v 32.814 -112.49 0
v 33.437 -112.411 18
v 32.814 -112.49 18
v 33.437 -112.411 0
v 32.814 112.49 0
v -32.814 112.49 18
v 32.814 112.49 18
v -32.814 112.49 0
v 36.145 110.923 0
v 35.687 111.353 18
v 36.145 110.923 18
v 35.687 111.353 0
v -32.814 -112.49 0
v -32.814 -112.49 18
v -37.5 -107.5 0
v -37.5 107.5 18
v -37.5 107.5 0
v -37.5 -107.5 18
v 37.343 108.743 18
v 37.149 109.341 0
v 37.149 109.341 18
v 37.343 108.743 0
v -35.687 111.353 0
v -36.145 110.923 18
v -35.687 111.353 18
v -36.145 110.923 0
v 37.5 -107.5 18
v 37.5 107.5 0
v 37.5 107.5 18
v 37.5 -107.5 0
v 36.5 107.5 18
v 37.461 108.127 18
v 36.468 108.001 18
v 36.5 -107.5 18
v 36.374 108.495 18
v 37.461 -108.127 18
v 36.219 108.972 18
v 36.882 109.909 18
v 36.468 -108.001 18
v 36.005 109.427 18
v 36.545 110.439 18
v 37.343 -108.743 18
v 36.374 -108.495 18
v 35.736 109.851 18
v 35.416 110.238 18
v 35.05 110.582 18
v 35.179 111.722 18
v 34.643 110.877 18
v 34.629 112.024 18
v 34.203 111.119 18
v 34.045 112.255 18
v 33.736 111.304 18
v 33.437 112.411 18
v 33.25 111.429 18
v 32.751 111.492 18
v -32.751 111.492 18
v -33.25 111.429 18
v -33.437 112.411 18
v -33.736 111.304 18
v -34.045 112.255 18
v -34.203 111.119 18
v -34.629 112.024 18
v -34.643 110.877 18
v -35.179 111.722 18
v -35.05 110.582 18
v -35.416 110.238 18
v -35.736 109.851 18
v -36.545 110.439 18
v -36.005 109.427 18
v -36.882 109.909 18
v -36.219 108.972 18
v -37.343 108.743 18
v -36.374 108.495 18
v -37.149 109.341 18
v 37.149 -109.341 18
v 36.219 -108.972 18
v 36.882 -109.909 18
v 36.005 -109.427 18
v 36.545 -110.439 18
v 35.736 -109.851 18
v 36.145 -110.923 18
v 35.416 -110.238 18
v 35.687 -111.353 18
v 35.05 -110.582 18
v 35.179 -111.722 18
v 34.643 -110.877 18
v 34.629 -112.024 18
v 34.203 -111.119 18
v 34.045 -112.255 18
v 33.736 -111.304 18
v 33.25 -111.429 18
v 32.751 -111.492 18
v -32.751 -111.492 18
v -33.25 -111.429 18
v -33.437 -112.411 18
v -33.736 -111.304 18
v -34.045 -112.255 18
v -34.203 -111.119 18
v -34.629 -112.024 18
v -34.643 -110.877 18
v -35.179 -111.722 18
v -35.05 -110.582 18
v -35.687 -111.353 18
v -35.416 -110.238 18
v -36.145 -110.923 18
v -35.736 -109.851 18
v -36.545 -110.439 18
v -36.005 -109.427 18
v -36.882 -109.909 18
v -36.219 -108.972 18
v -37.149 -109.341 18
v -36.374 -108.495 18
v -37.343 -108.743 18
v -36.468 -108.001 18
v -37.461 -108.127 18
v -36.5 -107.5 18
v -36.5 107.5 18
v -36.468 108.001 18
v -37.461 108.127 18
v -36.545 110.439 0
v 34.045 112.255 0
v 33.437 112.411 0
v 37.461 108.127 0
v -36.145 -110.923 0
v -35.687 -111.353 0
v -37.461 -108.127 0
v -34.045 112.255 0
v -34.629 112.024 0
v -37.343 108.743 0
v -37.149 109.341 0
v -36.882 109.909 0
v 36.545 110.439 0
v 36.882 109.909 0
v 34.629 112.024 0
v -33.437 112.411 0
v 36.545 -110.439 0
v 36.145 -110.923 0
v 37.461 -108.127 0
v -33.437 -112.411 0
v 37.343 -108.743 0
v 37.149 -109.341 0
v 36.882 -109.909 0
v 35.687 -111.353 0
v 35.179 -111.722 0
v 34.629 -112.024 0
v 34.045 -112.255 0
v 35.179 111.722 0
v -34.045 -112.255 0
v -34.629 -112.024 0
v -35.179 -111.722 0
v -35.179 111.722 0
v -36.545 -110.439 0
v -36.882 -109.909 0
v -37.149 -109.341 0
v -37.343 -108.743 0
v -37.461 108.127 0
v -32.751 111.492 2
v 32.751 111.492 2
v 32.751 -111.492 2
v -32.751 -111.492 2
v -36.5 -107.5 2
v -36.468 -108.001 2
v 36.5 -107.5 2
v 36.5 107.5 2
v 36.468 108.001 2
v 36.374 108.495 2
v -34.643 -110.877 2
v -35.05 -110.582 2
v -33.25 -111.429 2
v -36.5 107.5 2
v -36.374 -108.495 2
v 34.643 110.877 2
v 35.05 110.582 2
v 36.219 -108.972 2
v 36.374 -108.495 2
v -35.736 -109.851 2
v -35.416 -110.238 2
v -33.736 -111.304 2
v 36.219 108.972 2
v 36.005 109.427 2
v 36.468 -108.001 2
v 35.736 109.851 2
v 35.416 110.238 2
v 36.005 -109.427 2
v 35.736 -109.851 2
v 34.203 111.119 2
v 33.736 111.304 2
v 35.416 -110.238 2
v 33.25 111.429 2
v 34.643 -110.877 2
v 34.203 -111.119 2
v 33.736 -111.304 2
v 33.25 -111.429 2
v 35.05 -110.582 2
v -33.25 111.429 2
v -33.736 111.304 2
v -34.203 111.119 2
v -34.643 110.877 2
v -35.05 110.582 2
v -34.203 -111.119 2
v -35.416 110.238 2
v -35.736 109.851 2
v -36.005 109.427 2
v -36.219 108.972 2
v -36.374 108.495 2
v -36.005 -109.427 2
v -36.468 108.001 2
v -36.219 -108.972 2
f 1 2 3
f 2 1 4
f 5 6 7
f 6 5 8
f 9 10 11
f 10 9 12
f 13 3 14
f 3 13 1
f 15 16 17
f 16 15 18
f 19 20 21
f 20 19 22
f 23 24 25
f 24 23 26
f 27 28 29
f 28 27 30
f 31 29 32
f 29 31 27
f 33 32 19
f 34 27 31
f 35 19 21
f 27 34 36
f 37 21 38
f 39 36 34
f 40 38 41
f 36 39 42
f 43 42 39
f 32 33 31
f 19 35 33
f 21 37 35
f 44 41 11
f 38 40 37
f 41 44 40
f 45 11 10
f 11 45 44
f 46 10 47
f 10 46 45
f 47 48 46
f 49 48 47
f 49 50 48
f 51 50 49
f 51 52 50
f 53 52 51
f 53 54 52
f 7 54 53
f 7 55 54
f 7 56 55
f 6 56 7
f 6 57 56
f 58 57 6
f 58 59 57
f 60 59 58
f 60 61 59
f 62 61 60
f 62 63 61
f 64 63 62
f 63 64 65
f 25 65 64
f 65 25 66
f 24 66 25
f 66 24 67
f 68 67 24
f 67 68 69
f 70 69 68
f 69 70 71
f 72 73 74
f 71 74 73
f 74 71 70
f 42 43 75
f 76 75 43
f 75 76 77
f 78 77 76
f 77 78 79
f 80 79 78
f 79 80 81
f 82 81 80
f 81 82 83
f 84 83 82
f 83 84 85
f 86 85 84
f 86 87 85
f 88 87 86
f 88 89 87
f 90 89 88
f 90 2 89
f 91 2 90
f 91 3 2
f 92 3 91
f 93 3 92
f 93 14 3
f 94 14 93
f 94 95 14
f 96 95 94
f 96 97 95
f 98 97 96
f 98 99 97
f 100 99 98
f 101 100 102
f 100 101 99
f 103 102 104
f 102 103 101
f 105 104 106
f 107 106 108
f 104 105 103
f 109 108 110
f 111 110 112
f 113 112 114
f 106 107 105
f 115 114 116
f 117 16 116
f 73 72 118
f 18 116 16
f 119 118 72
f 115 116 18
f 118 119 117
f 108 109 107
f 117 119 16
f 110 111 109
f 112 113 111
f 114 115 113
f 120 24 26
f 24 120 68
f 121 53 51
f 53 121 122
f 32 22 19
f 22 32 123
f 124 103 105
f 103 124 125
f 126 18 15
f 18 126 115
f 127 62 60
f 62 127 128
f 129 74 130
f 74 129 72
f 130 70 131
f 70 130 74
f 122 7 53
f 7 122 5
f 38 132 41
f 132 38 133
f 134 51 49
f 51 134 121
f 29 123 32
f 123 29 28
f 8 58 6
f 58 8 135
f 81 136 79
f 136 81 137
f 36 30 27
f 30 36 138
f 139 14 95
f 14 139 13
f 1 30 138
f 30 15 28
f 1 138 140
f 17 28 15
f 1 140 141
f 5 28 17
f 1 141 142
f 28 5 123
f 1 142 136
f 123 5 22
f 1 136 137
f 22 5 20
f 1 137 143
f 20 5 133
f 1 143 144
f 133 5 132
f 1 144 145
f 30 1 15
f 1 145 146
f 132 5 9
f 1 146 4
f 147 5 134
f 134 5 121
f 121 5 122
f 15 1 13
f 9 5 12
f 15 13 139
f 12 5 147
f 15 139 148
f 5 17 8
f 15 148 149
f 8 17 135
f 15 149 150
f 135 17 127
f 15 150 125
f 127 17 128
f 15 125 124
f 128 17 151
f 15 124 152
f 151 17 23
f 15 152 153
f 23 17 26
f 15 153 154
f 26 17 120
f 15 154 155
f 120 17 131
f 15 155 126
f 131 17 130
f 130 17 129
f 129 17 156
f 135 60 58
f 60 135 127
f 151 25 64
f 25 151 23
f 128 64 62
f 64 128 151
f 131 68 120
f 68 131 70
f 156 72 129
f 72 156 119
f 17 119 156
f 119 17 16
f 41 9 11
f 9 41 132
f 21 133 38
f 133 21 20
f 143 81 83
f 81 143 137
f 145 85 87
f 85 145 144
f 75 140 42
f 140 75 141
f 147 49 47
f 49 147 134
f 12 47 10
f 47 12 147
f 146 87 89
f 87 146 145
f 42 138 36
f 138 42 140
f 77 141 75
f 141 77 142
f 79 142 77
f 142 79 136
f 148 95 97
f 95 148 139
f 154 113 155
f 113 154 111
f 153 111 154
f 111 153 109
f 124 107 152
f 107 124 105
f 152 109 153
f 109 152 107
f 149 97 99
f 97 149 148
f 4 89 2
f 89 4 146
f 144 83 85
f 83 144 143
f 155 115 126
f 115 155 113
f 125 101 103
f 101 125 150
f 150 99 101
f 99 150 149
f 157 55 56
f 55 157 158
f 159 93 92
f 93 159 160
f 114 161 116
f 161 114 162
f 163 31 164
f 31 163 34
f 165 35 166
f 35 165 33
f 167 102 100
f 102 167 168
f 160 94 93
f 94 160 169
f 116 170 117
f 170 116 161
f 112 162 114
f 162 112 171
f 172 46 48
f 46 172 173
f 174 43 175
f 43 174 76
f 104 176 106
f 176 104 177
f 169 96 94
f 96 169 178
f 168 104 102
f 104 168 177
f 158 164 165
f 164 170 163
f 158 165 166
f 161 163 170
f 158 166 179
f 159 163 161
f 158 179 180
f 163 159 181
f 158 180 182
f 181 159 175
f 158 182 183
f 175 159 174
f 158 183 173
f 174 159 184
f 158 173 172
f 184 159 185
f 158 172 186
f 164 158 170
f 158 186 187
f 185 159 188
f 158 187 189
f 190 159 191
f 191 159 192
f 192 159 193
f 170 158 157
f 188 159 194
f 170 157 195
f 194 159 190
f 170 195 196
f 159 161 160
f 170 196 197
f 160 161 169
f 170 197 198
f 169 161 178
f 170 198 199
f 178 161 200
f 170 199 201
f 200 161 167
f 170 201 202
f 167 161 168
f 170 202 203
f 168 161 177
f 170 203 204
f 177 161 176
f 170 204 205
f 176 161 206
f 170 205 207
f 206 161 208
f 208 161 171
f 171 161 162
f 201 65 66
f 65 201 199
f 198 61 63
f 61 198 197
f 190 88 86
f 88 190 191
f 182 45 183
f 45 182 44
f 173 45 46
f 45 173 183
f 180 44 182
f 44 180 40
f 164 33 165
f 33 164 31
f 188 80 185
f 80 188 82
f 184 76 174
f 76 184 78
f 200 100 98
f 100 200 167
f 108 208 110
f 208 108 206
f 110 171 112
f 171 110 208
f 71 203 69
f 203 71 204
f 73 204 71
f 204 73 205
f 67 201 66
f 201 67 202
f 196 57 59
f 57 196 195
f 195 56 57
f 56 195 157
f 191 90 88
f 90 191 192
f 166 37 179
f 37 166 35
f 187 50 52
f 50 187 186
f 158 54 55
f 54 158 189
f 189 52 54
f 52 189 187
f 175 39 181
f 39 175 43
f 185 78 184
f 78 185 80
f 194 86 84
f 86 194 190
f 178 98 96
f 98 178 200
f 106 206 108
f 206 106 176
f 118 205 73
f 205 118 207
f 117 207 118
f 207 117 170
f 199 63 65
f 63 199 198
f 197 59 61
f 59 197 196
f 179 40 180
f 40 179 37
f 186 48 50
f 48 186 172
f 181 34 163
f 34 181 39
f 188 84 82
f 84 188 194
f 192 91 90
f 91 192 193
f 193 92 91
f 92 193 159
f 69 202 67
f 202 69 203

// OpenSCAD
$fn = 50;


difference() {
	union() {
		hull() {
			translate(v = [-32.5000000000, 107.5000000000, 0]) {
				cylinder(h = 18, r = 5);
			}
			translate(v = [32.5000000000, 107.5000000000, 0]) {
				cylinder(h = 18, r = 5);
			}
			translate(v = [-32.5000000000, -107.5000000000, 0]) {
				cylinder(h = 18, r = 5);
			}
			translate(v = [32.5000000000, -107.5000000000, 0]) {
				cylinder(h = 18, r = 5);
			}
		}
	}
	union() {
		translate(v = [0, 0, 2]) {
			hull() {
				translate(v = [-32.5000000000, 107.5000000000, 0]) {
					cylinder(h = 16, r = 4);
				}
				translate(v = [32.5000000000, 107.5000000000, 0]) {
					cylinder(h = 16, r = 4);
				}
				translate(v = [-32.5000000000, -107.5000000000, 0]) {
					cylinder(h = 16, r = 4);
				}
				translate(v = [32.5000000000, -107.5000000000, 0]) {
					cylinder(h = 16, r = 4);
				}
			}
		}
	}
}
